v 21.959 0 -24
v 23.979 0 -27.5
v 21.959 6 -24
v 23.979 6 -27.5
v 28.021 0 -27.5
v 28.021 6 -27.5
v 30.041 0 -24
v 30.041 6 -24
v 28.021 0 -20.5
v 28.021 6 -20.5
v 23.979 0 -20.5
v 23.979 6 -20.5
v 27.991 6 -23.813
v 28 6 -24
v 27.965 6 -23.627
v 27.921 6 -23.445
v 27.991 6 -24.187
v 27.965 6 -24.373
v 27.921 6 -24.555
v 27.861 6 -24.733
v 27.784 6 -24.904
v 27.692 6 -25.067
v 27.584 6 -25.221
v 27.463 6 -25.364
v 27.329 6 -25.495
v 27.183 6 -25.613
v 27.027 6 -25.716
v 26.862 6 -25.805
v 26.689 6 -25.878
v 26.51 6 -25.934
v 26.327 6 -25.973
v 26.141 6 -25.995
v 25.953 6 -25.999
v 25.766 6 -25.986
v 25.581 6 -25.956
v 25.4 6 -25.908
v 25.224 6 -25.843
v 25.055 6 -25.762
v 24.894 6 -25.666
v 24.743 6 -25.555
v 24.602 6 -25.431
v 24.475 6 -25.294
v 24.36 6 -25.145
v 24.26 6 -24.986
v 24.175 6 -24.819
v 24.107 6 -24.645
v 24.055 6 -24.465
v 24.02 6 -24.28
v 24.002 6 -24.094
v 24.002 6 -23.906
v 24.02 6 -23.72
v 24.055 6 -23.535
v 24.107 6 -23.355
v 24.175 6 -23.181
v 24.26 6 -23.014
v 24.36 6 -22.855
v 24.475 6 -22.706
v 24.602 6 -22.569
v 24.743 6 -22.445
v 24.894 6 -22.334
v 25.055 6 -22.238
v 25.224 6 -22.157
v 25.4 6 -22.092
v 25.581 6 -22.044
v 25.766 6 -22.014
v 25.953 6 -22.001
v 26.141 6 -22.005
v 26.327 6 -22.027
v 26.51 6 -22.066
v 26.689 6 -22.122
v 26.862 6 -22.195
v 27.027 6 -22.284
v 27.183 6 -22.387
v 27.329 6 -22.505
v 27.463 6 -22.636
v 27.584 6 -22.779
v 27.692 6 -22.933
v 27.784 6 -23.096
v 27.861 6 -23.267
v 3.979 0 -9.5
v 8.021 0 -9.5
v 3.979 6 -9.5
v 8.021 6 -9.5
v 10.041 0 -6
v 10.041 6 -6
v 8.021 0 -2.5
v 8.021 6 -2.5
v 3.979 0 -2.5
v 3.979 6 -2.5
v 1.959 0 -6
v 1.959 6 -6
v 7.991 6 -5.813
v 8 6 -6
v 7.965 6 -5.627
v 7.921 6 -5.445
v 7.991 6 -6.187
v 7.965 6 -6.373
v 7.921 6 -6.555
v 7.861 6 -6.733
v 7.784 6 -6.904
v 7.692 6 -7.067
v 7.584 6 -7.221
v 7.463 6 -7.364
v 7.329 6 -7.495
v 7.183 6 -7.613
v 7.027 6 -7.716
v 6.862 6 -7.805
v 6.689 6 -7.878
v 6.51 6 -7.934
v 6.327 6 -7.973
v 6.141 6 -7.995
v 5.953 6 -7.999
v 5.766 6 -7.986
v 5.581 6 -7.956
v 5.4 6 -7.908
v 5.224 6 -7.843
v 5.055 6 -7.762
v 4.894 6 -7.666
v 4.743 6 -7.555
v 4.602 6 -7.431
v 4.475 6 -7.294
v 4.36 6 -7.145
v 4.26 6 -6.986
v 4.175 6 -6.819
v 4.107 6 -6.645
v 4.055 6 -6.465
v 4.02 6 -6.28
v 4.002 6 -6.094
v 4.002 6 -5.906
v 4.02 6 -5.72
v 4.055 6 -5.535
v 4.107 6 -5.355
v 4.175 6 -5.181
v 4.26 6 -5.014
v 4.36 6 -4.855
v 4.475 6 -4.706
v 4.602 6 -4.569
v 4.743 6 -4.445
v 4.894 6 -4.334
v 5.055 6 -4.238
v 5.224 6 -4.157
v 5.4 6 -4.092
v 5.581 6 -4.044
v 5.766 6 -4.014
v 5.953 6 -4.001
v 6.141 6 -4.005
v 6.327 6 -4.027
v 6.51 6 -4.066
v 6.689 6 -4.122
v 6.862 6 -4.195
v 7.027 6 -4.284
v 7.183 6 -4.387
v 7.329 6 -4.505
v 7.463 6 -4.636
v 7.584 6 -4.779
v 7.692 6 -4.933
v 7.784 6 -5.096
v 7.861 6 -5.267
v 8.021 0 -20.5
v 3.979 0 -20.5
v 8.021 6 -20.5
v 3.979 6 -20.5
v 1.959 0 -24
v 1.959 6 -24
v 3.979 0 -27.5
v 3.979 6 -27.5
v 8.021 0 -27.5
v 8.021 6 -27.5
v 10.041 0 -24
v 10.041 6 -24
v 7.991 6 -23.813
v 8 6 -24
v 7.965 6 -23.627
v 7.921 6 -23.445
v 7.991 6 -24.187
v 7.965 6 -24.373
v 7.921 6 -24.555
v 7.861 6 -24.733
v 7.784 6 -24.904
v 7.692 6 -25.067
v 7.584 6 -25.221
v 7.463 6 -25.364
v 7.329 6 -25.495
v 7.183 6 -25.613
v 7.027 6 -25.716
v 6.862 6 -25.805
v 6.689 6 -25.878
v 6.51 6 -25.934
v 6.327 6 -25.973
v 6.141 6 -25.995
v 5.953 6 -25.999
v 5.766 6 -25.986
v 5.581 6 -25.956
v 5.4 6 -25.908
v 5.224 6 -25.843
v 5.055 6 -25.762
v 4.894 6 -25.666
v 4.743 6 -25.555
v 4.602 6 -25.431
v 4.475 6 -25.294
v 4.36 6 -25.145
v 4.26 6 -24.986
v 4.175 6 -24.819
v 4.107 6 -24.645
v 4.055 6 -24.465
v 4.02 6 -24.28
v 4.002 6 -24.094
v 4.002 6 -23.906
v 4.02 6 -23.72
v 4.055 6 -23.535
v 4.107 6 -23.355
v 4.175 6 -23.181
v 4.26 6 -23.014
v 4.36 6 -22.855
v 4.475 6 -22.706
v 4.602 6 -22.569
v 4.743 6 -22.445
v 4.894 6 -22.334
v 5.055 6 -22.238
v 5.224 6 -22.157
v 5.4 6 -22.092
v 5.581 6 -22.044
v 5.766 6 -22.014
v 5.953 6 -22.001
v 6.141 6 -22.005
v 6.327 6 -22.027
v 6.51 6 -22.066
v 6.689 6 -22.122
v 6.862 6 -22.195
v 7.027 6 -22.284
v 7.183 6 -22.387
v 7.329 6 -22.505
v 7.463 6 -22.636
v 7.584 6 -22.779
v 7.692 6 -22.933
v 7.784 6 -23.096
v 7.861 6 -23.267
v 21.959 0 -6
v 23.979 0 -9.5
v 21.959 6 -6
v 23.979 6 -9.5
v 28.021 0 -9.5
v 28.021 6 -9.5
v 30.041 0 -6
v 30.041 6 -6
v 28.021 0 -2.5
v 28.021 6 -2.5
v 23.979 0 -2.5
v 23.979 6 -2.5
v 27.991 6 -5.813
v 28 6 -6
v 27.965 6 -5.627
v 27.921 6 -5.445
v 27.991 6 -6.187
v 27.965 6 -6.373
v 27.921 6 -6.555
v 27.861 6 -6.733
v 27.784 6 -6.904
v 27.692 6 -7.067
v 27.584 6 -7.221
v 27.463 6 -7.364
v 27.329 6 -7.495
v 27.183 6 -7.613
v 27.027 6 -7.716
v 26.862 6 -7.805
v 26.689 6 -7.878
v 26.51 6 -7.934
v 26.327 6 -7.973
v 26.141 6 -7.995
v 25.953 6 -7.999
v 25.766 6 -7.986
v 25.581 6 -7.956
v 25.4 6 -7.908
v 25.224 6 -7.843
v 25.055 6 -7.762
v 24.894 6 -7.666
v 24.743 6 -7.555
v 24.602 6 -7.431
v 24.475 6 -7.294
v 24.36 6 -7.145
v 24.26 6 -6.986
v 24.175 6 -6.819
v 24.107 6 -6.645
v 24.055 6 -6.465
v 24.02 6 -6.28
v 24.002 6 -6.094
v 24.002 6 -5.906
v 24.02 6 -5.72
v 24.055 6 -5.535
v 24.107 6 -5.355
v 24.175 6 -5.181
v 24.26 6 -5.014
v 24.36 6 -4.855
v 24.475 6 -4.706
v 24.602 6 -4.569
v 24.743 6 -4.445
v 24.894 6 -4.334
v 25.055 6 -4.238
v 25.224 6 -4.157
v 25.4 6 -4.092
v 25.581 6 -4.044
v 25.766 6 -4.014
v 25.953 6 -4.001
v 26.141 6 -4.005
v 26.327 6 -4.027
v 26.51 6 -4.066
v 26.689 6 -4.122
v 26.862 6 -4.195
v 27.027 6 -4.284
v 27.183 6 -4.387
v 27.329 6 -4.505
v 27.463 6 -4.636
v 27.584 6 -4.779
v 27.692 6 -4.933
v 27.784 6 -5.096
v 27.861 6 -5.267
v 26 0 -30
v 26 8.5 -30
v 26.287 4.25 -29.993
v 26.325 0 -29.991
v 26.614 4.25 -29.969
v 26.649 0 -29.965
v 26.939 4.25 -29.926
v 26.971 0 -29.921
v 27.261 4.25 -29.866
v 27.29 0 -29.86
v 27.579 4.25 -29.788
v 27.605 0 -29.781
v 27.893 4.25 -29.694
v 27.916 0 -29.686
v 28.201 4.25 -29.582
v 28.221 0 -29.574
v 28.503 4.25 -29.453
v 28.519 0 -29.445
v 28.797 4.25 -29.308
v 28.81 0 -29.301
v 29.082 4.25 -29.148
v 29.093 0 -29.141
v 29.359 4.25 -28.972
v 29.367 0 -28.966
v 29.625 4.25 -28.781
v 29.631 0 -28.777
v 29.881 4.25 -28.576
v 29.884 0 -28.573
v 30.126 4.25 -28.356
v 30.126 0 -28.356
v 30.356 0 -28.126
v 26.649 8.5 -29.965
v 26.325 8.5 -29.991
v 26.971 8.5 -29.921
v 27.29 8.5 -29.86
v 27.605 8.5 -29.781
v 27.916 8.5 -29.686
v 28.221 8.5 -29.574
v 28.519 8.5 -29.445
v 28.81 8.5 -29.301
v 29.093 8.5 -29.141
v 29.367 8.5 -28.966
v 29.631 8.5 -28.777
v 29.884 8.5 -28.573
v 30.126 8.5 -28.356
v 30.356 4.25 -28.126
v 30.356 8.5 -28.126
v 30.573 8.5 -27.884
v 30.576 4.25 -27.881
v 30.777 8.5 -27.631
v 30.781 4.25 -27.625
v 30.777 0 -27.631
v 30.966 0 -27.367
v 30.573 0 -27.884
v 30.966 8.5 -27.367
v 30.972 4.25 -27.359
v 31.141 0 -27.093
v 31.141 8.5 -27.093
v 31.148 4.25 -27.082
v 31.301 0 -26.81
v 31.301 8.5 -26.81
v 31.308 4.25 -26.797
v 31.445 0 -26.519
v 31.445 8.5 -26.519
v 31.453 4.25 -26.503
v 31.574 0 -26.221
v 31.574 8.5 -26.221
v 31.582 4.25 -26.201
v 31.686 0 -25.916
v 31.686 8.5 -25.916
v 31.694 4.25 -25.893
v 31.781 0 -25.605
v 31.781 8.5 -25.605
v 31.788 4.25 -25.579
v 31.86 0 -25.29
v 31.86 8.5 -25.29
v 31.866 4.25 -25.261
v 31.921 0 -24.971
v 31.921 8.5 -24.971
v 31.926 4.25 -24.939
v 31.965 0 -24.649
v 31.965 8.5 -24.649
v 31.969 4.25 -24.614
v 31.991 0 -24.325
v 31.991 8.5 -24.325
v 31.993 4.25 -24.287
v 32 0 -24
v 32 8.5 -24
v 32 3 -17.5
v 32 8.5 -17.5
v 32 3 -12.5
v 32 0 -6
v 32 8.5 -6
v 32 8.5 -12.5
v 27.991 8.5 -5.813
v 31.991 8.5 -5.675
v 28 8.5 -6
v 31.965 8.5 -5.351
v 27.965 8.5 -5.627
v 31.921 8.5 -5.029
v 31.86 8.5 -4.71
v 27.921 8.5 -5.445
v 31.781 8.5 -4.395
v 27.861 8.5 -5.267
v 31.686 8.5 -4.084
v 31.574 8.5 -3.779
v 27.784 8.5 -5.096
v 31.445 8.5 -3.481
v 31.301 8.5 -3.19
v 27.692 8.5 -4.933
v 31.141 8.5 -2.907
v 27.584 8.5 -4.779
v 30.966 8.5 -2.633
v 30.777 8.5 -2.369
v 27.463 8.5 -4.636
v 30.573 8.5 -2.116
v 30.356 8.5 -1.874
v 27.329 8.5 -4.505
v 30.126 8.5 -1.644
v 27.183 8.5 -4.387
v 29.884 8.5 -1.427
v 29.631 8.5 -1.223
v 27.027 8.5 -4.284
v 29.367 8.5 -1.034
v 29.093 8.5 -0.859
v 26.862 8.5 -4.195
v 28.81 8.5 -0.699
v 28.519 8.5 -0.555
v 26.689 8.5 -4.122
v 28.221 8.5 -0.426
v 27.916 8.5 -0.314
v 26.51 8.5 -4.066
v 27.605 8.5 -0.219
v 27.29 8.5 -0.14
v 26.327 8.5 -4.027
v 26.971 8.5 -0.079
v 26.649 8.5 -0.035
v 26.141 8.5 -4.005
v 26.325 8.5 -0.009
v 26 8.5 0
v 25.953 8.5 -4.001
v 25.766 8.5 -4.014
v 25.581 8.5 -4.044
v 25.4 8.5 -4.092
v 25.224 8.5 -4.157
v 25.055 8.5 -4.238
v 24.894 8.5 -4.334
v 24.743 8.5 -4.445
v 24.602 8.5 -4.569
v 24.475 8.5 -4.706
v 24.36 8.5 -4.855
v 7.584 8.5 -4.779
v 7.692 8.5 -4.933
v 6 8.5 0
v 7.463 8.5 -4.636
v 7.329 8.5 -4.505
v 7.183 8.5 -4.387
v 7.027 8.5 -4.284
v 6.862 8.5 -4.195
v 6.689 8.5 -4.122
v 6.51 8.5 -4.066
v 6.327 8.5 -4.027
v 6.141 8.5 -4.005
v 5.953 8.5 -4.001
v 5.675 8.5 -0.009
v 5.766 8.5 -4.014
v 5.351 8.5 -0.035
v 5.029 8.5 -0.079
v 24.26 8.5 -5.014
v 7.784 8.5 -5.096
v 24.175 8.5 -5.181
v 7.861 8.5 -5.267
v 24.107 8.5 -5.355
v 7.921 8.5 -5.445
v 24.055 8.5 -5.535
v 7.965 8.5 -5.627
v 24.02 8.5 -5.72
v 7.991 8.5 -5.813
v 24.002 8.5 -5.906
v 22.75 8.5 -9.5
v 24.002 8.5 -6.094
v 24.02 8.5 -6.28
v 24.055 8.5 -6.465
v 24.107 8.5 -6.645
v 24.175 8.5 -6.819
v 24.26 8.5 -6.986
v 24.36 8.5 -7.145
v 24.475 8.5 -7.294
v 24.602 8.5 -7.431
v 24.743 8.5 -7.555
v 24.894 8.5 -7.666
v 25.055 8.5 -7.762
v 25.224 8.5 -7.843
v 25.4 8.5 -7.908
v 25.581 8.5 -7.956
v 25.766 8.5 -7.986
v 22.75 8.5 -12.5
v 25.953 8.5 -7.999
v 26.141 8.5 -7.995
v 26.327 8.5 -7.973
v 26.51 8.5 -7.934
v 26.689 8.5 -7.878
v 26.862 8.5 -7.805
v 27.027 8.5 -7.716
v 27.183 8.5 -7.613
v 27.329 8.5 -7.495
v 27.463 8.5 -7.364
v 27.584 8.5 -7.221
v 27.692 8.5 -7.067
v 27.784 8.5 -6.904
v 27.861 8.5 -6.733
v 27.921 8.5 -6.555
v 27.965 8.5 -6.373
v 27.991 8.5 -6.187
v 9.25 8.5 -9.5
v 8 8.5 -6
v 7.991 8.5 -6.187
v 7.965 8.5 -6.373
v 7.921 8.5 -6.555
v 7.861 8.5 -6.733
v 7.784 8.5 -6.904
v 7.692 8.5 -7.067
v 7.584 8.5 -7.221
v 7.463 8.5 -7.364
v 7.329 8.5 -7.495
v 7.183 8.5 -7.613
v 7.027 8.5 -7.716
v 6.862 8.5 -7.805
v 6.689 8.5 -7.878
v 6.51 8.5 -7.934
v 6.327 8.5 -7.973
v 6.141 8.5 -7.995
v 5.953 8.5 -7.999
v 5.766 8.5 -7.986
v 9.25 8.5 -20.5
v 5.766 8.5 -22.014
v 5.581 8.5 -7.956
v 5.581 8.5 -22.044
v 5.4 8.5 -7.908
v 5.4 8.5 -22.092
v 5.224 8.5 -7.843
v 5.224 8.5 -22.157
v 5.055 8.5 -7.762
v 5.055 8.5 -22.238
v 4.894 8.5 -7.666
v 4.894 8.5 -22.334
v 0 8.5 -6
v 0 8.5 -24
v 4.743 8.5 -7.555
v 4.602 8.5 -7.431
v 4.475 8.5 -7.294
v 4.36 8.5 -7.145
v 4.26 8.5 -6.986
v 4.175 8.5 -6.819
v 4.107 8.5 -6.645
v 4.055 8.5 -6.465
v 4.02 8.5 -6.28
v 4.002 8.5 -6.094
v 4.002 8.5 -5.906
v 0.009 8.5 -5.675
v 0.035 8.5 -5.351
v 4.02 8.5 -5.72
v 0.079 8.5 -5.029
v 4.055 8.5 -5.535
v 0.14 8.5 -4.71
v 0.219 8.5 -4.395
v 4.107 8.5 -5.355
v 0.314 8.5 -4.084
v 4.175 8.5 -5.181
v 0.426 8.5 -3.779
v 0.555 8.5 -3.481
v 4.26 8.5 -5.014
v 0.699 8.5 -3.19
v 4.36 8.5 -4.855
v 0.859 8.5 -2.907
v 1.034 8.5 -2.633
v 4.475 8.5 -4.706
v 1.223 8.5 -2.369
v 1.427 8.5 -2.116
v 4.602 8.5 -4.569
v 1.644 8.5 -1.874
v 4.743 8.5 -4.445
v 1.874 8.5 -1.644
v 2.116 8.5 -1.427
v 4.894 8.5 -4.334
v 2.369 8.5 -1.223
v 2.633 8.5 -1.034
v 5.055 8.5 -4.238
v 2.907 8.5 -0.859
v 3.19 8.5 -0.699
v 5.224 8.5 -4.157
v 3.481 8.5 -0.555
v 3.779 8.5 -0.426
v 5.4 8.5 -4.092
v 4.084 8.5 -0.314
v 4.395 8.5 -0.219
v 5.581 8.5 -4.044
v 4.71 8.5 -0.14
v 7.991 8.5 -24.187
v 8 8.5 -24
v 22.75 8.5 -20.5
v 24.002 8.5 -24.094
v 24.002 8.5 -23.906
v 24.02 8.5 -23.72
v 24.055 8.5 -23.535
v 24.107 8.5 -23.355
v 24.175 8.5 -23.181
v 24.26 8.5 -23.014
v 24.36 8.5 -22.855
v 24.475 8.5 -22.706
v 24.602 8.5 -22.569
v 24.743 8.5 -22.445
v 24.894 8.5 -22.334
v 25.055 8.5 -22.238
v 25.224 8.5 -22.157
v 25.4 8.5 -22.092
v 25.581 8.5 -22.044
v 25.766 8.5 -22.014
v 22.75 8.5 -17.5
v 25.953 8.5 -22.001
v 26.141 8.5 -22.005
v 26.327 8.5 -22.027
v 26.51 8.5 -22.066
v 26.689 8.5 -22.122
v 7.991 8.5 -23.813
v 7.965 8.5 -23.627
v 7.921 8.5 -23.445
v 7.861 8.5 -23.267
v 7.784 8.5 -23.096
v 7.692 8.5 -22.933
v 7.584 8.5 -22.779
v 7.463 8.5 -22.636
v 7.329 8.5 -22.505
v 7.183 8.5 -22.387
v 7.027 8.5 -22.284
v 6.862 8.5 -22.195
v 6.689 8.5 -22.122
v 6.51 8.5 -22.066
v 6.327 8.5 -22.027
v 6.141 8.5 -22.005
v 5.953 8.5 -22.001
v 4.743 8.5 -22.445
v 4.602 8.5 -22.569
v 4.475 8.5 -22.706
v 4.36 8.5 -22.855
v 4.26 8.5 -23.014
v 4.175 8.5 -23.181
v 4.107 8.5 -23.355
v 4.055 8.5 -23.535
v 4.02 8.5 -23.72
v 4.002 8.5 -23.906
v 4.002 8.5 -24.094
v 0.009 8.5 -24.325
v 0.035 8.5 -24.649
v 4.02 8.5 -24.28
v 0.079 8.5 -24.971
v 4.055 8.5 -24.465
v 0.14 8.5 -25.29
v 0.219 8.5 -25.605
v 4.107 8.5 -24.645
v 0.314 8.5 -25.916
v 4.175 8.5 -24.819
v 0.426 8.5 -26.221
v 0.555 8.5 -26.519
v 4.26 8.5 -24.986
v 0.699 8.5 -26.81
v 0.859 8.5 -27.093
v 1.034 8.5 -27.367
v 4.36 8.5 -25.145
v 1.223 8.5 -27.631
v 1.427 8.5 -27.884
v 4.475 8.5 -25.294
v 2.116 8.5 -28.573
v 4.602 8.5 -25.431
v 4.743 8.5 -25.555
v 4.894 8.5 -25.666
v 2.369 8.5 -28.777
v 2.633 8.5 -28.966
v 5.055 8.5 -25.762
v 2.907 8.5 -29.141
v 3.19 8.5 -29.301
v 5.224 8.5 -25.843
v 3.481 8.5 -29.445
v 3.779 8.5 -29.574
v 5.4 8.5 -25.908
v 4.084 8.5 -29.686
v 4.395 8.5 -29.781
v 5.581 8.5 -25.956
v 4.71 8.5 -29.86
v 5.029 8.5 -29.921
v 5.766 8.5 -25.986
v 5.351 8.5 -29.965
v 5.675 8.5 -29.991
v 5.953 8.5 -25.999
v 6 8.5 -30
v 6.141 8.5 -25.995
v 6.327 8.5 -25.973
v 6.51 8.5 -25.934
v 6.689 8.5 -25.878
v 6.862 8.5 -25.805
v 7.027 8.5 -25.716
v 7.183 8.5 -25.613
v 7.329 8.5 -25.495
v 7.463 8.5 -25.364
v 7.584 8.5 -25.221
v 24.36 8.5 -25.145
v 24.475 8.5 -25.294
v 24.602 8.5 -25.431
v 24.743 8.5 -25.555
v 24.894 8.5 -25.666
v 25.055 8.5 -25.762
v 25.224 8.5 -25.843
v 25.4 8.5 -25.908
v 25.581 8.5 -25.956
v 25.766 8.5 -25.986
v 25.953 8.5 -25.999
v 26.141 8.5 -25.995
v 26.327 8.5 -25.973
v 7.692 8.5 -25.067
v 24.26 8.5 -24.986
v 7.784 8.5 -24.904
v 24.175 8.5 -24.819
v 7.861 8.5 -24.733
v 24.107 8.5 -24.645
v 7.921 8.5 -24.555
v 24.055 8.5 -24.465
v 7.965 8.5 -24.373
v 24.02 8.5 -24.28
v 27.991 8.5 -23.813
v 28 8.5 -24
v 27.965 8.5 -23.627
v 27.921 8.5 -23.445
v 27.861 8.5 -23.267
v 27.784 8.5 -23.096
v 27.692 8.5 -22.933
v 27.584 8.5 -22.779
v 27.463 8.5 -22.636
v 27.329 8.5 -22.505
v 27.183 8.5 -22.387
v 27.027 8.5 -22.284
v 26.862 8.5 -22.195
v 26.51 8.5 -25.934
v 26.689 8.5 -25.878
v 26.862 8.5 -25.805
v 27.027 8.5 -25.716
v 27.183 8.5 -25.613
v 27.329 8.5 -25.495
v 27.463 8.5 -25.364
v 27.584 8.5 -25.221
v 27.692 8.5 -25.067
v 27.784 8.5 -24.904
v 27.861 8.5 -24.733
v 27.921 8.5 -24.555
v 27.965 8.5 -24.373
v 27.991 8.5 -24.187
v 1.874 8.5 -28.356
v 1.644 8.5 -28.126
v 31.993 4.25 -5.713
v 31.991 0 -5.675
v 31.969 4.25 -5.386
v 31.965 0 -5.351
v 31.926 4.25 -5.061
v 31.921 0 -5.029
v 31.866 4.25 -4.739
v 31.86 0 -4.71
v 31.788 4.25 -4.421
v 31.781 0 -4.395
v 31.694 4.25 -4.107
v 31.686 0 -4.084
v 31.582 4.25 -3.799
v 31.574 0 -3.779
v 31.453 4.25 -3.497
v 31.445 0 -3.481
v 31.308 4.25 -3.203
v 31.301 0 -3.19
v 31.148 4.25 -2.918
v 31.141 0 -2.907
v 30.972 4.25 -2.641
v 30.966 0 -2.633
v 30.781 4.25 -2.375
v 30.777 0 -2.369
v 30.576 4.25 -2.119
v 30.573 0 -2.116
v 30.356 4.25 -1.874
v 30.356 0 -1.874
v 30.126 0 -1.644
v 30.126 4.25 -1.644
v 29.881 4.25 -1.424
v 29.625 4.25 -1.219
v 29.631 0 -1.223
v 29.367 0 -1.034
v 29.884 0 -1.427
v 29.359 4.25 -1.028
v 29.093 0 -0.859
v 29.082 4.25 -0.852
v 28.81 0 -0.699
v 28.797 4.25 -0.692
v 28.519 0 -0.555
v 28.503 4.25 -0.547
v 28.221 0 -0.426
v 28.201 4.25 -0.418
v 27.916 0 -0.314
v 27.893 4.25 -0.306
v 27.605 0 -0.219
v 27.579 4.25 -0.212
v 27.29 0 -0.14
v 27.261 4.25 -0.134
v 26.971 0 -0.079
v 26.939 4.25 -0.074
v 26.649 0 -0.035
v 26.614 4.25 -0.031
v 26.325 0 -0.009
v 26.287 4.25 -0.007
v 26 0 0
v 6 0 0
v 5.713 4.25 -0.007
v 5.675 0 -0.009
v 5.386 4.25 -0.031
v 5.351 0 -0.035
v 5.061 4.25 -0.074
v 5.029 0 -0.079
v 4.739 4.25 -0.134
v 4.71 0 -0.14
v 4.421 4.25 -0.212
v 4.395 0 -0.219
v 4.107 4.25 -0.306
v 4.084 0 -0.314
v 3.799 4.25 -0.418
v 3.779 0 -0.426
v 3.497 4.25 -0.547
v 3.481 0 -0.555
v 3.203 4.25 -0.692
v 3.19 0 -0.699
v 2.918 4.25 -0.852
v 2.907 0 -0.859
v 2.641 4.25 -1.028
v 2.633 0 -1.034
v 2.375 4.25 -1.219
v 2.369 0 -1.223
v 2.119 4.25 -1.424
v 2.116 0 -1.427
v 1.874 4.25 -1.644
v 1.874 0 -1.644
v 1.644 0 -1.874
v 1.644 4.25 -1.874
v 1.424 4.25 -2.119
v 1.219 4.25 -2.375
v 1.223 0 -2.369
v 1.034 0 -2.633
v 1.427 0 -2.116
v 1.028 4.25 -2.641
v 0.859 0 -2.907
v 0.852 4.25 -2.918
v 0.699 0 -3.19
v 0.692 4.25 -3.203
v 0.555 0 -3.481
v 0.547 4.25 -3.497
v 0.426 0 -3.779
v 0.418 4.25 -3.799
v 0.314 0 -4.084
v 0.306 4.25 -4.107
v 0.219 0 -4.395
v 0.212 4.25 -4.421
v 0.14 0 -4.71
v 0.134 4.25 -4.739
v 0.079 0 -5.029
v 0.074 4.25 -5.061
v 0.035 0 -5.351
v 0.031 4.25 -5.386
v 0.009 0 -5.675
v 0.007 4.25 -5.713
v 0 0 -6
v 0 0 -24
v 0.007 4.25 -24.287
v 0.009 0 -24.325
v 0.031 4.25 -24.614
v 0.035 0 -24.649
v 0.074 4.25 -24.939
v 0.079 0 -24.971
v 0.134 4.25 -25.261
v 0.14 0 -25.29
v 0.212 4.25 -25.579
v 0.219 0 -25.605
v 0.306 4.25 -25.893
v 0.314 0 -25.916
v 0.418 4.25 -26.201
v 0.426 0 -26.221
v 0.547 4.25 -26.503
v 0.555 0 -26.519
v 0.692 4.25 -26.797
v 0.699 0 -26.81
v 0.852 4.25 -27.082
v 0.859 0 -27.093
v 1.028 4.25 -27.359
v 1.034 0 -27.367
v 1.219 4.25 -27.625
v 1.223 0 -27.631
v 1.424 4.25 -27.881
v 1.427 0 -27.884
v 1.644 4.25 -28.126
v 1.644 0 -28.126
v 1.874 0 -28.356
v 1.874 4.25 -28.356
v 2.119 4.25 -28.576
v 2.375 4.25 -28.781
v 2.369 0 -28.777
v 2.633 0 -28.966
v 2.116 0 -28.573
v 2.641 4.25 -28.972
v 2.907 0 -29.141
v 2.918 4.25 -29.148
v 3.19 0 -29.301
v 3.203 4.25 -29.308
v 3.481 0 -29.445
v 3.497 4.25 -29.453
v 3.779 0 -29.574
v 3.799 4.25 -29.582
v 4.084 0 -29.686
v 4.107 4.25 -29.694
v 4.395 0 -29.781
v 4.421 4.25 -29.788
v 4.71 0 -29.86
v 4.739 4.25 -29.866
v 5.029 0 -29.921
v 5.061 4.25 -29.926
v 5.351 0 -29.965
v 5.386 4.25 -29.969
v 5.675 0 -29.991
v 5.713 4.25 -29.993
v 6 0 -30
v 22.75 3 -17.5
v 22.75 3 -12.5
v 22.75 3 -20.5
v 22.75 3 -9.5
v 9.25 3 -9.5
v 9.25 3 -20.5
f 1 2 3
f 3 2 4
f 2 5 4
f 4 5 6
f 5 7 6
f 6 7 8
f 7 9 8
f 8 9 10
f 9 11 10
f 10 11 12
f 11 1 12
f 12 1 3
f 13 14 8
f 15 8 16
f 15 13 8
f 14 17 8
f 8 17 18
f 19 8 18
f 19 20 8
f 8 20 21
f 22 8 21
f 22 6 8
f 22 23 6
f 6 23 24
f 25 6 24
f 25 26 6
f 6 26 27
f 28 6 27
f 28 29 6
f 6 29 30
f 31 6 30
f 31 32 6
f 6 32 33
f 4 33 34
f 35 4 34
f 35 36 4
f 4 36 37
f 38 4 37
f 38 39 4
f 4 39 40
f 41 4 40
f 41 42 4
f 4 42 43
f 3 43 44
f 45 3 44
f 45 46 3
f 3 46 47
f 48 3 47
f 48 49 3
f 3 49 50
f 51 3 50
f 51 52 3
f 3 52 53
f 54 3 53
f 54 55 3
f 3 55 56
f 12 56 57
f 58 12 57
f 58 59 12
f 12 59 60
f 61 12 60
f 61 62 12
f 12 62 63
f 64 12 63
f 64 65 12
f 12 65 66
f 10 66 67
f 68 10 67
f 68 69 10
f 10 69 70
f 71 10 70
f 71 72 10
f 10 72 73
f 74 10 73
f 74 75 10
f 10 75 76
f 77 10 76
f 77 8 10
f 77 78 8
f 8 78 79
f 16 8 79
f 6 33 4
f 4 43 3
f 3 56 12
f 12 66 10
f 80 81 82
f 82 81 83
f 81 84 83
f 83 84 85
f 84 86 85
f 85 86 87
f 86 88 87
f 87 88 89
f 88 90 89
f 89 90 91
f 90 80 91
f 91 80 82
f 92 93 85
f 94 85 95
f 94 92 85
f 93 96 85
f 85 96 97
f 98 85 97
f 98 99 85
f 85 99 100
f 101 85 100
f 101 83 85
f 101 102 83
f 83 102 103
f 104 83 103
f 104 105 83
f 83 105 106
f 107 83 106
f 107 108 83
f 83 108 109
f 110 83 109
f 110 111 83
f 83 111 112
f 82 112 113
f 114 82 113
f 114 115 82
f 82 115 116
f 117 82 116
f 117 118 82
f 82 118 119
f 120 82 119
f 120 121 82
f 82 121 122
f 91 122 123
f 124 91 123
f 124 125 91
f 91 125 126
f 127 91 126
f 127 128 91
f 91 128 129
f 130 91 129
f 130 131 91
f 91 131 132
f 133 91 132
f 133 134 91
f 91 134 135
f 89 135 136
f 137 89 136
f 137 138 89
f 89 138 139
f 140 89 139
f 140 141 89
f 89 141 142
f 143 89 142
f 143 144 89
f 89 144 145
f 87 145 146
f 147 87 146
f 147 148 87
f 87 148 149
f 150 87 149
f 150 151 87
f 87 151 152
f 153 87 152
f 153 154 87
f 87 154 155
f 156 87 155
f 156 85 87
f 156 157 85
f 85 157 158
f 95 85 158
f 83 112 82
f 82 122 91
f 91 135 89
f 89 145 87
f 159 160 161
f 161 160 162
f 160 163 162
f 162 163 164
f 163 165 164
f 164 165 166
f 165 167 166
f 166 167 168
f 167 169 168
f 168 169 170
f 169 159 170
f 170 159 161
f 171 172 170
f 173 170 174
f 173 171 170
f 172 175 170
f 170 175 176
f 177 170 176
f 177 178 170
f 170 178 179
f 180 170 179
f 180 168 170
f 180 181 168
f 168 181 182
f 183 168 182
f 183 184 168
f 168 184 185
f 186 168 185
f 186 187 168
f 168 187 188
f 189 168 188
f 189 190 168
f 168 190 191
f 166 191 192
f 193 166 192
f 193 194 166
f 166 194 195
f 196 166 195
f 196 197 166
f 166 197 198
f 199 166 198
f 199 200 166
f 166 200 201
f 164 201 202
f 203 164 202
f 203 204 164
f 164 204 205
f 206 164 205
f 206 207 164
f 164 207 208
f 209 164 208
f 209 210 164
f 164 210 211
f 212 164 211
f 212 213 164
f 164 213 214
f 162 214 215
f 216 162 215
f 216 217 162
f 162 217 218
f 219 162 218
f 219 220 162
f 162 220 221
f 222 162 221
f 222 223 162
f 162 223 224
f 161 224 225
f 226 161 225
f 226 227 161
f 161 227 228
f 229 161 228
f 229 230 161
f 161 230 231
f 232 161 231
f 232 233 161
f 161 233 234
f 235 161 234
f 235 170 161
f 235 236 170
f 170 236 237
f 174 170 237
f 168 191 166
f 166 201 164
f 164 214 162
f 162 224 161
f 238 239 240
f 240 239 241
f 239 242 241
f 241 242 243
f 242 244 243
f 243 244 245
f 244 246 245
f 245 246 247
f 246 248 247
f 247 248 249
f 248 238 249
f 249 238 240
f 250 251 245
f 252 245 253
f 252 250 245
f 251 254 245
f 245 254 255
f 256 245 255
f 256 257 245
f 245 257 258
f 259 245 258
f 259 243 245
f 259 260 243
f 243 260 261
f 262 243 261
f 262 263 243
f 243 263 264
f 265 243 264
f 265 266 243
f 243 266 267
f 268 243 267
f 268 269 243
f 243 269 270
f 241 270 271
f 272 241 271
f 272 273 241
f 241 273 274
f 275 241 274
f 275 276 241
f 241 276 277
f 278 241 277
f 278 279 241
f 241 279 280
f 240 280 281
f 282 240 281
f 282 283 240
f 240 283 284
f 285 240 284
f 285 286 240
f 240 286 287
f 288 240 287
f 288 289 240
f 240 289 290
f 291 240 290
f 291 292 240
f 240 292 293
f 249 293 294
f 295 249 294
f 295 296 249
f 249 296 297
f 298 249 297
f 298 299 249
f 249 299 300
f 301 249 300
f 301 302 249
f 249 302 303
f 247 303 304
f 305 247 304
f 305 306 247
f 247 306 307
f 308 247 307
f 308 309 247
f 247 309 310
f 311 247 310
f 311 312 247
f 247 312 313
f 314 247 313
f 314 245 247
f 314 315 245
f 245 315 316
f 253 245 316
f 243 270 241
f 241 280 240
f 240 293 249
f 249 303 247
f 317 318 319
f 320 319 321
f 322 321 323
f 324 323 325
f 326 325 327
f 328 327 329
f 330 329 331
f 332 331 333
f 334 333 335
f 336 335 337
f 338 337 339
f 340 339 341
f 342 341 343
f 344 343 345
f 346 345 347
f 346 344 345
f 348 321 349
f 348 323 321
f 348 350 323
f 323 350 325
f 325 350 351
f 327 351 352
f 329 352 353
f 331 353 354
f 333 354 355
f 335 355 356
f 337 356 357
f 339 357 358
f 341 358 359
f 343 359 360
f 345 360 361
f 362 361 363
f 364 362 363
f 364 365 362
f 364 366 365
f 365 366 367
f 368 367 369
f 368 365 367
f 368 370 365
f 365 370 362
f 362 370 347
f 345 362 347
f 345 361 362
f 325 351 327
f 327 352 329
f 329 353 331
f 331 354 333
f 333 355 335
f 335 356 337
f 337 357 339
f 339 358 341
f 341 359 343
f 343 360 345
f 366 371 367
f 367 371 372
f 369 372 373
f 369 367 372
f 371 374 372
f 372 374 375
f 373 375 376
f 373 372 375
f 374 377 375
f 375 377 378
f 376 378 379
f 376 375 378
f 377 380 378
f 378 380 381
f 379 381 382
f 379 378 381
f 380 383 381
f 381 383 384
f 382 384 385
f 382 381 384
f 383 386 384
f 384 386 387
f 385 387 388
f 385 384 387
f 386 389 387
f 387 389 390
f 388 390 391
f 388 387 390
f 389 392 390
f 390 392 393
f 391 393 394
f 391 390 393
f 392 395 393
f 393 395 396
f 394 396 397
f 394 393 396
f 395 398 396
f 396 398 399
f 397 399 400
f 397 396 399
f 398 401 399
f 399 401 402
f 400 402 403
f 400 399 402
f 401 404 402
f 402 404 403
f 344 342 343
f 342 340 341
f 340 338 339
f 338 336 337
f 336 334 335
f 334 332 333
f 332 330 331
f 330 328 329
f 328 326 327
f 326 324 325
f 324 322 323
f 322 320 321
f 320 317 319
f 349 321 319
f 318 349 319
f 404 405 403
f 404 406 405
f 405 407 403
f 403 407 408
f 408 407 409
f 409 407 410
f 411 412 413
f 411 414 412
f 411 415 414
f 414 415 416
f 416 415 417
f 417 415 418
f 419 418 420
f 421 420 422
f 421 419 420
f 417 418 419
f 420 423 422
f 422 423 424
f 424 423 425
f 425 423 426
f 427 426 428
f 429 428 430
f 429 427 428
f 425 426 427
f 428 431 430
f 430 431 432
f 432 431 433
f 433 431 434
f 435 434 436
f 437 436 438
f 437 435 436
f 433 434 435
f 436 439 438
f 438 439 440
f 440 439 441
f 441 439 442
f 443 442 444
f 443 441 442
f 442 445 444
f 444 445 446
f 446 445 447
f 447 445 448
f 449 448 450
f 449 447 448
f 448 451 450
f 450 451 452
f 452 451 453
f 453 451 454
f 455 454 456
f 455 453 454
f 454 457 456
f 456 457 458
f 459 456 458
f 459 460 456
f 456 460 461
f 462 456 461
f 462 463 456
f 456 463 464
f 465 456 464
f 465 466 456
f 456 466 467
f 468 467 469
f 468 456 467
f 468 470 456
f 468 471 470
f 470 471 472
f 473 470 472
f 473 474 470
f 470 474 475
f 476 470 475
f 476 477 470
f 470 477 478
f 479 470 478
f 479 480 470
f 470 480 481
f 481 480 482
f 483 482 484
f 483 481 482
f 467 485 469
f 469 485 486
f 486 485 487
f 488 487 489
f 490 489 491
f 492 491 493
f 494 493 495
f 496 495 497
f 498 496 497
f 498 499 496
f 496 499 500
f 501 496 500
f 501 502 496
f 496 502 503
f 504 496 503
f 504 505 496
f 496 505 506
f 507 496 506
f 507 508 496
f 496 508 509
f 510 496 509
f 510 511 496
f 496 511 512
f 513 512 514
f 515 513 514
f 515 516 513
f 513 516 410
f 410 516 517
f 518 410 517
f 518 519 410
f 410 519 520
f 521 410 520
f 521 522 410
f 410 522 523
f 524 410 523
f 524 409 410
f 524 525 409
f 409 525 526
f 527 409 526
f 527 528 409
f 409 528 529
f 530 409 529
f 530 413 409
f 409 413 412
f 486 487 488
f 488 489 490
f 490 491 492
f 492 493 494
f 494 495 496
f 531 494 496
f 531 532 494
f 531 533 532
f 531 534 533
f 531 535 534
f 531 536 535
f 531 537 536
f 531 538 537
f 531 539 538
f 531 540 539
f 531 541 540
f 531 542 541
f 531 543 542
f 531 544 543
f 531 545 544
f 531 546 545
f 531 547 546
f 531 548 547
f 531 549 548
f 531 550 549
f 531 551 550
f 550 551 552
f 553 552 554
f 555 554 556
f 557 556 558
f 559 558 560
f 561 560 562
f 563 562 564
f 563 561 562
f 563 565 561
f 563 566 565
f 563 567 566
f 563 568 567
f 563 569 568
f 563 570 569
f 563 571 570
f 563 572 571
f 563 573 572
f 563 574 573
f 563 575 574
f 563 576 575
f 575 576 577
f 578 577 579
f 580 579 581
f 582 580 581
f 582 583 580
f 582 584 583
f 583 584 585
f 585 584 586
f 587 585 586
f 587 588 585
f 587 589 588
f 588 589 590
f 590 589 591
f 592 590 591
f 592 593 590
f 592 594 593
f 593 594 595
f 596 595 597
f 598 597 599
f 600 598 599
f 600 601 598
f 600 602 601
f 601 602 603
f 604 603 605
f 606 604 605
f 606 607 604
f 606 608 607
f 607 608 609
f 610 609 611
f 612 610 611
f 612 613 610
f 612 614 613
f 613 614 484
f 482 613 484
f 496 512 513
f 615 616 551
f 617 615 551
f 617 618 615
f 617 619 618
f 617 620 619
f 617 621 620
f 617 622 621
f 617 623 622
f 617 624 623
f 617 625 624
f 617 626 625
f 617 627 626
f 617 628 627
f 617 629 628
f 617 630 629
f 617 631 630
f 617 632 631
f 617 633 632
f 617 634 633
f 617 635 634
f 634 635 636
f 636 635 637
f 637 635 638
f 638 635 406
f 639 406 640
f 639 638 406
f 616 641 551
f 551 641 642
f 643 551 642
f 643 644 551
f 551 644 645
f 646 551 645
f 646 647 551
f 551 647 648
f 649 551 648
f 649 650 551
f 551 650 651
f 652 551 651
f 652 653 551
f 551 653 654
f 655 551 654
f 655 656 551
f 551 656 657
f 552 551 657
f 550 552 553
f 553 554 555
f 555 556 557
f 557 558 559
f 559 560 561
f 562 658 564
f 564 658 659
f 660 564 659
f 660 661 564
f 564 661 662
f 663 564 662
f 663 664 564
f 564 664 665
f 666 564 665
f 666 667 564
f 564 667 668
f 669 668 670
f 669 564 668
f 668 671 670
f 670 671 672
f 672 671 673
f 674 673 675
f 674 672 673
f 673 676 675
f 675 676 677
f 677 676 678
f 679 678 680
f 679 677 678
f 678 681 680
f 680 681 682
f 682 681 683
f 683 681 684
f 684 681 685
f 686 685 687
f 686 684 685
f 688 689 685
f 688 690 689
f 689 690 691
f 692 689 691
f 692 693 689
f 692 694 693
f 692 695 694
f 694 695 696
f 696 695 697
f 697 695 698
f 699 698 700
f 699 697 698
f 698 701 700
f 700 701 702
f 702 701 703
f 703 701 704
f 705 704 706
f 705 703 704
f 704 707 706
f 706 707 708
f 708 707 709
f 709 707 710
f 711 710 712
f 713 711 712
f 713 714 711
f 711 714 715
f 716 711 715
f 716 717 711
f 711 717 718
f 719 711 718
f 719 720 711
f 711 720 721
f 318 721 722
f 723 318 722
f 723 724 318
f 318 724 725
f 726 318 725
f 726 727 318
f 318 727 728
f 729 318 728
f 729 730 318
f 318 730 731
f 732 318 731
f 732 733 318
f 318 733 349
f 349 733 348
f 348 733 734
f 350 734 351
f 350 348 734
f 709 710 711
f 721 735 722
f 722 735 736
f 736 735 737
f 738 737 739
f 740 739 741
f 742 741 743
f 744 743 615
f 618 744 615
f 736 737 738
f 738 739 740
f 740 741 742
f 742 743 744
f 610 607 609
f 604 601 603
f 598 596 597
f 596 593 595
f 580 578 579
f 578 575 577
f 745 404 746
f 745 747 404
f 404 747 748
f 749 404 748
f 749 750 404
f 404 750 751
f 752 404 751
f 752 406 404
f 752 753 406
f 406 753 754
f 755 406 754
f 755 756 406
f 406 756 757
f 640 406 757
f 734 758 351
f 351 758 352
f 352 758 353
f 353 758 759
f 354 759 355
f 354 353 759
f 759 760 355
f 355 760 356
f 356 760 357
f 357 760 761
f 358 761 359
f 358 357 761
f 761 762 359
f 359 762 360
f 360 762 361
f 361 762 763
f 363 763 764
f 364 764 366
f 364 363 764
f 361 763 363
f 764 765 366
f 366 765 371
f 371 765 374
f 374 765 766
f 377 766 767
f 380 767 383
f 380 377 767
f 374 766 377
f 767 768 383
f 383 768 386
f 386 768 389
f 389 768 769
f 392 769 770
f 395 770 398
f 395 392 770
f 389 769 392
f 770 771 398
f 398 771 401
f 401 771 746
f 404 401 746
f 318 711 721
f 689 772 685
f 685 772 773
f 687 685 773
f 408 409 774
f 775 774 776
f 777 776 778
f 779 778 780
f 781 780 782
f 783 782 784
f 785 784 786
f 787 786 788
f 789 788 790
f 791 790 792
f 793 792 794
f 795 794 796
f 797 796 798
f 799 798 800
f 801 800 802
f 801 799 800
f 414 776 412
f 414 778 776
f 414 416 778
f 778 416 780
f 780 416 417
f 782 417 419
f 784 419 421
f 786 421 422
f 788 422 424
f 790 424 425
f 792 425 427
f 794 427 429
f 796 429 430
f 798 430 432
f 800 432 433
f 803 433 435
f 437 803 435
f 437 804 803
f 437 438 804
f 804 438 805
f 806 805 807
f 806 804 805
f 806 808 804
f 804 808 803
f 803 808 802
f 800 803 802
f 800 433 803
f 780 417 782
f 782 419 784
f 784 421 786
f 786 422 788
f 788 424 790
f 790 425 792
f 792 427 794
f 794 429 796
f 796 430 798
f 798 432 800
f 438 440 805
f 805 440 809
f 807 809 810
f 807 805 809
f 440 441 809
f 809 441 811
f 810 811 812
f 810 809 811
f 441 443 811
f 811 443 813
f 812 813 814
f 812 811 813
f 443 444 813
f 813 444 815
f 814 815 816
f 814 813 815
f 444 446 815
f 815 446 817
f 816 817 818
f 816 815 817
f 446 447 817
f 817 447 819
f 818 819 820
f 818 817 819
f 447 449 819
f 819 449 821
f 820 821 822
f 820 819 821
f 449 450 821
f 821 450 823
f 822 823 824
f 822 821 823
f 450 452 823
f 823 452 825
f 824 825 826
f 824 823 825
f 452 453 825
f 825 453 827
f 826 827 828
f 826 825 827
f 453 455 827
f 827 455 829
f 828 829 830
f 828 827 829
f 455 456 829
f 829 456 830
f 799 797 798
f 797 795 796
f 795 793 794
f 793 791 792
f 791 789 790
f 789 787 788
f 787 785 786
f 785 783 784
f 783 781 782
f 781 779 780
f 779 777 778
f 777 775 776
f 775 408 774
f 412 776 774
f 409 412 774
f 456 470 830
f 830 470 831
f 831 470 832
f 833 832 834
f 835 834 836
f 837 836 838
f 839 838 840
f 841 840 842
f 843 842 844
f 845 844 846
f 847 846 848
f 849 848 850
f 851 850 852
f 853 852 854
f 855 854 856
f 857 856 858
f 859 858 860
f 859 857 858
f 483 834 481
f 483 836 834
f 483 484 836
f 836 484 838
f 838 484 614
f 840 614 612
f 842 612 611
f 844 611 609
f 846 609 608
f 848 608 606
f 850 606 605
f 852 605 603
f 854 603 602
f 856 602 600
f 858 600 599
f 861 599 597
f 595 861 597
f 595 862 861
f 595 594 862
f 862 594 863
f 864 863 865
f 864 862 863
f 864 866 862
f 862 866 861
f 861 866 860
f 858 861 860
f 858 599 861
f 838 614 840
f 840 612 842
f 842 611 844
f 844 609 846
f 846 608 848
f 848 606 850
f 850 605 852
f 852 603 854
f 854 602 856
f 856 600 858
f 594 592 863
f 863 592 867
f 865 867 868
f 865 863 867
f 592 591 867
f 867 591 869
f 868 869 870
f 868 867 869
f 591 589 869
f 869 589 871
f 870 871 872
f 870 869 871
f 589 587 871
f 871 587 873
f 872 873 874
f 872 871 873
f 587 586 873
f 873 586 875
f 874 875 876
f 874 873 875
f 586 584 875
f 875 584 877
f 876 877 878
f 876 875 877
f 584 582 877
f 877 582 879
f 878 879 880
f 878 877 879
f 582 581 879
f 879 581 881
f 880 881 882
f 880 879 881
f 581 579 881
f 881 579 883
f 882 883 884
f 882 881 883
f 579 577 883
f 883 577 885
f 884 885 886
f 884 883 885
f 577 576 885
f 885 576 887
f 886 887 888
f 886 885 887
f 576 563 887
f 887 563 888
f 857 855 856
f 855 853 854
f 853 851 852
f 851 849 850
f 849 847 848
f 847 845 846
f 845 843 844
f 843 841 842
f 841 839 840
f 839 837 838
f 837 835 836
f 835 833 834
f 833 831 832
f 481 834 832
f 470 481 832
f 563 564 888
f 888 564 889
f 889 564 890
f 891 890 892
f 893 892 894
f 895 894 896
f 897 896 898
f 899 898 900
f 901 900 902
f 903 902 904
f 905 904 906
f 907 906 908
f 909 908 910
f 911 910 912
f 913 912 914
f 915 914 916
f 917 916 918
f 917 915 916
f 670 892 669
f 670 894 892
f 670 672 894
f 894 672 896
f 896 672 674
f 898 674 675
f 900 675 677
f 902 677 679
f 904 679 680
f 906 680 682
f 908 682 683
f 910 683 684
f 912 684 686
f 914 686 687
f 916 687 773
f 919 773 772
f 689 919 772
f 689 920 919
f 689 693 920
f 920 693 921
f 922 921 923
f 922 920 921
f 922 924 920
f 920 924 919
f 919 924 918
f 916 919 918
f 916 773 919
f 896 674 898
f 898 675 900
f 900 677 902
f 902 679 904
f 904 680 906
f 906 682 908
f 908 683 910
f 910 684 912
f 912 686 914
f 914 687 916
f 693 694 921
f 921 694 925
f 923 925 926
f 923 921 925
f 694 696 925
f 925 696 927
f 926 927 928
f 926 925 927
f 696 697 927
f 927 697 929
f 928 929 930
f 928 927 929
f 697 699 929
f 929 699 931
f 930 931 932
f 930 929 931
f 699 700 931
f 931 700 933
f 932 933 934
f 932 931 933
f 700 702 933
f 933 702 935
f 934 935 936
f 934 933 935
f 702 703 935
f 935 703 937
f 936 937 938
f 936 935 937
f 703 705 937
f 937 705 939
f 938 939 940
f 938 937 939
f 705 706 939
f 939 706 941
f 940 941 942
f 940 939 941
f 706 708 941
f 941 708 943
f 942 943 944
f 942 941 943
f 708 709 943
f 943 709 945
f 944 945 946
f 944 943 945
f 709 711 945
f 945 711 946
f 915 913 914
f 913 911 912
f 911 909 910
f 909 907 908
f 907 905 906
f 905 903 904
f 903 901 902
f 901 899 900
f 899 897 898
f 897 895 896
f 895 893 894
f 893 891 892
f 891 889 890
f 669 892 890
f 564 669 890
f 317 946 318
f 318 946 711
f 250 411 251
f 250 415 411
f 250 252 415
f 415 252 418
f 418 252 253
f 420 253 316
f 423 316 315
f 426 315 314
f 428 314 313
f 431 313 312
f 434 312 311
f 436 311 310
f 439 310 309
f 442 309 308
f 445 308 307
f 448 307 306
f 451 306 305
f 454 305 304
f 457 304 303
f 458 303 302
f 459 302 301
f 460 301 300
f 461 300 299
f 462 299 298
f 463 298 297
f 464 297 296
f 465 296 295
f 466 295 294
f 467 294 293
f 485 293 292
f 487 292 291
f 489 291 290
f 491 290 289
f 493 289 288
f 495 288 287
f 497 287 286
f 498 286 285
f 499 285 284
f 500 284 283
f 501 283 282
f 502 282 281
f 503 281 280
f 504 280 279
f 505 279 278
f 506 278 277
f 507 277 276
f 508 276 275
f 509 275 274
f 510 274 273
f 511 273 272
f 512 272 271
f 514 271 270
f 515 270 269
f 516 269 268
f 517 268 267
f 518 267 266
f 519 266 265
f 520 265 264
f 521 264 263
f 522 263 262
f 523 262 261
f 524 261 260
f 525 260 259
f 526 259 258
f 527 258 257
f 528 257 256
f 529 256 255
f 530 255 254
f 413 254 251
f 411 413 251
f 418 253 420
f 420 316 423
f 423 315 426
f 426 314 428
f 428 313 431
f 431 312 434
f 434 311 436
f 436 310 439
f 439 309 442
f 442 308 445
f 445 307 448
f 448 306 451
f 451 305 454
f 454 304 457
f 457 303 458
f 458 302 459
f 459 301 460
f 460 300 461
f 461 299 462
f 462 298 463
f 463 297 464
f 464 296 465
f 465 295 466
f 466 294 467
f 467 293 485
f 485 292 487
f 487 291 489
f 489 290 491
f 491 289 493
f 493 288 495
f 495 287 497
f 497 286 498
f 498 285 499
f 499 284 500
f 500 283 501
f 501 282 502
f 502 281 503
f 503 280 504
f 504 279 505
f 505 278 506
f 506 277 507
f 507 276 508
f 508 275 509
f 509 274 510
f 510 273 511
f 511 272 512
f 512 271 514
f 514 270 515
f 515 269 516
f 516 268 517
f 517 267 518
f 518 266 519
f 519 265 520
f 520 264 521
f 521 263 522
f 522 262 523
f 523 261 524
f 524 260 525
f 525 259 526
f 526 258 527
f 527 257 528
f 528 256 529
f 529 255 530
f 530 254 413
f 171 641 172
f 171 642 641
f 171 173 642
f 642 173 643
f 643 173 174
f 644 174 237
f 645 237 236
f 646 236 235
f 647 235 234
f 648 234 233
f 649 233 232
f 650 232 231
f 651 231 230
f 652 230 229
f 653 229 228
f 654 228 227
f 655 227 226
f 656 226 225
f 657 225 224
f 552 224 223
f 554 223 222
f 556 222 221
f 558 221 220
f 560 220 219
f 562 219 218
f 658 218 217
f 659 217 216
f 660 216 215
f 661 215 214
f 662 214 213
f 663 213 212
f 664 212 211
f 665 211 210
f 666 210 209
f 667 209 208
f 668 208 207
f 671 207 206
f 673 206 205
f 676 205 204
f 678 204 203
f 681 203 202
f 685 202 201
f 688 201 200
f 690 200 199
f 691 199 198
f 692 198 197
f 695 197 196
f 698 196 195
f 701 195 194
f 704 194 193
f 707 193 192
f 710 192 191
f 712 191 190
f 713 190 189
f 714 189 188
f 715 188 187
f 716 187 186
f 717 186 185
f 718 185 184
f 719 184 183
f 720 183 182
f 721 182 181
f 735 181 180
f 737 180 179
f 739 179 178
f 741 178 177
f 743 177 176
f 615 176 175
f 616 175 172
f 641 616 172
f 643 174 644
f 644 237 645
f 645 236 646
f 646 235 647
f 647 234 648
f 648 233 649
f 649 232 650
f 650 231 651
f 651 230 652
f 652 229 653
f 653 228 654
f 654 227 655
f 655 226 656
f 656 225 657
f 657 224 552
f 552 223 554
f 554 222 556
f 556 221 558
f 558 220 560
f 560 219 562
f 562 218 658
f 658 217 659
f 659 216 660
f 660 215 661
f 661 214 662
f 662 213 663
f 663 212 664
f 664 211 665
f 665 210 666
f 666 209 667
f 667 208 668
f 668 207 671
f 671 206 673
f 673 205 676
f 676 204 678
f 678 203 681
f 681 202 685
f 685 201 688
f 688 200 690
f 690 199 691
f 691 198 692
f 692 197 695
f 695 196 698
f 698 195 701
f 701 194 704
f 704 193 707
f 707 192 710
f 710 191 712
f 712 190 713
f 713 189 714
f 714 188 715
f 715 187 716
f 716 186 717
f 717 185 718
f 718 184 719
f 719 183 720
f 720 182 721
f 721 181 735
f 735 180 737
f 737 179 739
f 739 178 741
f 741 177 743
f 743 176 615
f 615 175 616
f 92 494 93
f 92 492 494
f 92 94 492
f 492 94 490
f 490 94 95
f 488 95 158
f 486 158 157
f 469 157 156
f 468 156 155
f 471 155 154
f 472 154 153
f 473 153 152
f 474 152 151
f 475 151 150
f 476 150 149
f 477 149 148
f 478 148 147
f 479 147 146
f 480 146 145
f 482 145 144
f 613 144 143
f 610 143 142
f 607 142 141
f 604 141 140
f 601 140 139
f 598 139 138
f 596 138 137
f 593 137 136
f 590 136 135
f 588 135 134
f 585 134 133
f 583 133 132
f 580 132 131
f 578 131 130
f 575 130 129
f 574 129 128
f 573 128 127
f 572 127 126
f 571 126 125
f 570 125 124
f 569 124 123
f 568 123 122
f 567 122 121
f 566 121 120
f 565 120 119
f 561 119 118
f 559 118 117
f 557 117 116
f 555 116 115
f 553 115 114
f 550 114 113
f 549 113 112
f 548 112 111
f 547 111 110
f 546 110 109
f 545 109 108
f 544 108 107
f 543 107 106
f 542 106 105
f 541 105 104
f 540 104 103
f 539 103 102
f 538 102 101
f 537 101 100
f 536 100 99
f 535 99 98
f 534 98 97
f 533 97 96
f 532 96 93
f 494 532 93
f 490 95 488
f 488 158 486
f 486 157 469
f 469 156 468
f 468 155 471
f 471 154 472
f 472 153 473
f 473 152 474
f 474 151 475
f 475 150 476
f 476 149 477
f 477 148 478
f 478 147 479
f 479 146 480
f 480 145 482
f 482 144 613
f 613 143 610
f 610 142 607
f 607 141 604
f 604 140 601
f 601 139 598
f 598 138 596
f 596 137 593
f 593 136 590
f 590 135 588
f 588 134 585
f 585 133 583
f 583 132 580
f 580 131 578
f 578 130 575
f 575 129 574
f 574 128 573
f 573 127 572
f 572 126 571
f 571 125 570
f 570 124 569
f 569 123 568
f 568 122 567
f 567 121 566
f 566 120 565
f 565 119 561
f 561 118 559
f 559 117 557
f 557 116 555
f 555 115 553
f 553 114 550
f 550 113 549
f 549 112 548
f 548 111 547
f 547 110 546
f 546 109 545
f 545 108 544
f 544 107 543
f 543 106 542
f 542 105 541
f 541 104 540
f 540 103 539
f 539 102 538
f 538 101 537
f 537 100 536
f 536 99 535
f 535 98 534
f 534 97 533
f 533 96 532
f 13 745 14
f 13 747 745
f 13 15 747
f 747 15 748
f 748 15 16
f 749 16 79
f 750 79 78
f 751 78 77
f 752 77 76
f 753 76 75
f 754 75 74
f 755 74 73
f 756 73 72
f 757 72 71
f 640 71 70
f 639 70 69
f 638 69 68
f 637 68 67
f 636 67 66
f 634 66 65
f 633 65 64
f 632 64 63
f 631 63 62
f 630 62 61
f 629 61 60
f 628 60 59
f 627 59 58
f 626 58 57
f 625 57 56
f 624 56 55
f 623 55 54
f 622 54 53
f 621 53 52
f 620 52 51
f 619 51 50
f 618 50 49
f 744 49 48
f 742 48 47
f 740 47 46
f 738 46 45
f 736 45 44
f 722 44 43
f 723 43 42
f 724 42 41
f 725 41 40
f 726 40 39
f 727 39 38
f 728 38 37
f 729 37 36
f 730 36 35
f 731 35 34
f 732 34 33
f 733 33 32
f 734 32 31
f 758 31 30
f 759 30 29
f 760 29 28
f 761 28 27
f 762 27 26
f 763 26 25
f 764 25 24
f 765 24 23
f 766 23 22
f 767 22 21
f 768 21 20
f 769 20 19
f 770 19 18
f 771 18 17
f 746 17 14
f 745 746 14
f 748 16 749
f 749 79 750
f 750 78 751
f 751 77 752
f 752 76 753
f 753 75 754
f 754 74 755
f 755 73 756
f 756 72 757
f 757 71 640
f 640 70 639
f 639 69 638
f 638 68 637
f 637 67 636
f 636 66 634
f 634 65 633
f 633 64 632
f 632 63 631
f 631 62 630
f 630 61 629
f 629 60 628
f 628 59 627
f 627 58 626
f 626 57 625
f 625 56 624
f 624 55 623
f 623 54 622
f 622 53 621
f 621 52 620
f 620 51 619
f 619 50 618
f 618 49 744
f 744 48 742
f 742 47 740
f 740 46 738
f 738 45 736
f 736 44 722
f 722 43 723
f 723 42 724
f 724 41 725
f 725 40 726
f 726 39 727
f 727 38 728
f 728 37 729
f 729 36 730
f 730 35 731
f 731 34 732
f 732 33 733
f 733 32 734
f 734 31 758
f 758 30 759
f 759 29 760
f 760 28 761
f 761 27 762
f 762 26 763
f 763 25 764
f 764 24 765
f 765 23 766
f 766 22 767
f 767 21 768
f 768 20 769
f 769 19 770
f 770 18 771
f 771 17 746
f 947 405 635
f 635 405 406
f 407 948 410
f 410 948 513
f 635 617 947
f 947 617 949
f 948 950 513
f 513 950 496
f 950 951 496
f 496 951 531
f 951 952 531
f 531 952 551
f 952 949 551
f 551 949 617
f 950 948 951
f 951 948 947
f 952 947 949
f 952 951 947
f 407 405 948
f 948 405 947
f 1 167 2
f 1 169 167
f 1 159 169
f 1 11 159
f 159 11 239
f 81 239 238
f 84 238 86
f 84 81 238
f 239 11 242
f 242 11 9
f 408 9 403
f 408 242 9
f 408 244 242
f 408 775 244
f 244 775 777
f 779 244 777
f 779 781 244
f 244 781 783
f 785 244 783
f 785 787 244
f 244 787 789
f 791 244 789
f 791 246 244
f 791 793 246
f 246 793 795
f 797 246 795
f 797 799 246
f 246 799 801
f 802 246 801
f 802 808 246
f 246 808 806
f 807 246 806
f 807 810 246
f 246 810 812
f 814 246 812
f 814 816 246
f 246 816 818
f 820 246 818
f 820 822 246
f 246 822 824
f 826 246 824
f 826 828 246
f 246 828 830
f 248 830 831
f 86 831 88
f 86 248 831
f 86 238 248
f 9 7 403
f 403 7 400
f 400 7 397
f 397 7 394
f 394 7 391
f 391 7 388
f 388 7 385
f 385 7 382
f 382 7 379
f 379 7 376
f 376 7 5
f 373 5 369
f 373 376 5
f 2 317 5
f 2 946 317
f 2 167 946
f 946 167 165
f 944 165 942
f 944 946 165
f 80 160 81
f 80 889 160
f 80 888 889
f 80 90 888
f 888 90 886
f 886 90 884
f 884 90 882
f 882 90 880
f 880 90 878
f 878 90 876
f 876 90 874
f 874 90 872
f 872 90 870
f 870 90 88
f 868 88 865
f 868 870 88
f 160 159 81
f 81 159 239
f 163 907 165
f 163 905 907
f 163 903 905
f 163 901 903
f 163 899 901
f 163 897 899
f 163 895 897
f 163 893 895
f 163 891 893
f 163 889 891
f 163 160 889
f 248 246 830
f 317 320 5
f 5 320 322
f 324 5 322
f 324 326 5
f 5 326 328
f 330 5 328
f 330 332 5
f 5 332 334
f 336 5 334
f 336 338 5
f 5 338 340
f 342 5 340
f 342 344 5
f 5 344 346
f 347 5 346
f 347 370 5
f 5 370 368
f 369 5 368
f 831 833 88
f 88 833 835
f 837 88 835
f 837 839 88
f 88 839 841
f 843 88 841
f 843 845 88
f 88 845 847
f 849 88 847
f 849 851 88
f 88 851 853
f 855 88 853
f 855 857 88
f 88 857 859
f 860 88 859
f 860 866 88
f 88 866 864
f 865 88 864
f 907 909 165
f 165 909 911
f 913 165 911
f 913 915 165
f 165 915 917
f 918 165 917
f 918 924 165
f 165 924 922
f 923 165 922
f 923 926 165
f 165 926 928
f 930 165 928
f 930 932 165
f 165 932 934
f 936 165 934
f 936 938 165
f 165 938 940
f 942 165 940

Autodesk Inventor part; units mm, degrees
ref_plane "YZ Plane" through (0, 0, 0) normal (1, 0, 0) x (0, 1, 0)
ref_plane "XZ Plane" through (0, 0, 0) normal (0, 1, 0) x (-1, 0, 0)
ref_plane "XY Plane" through (0, 0, 0) normal (0, 0, 1) x (1, 0, 0)
sketch "Sketch1" plane through (0, 0, 0) normal (0, 1, 0) x (-1, 0, 0)
  line L0 (0, 0) -> (-32, 0)
  line L1 (-32, 0) -> (-32, -30)
  line L2 (-32, -30) -> (0, -30)
  line L3 (0, -30) -> (0, 0)
  dimension "d0" = 30
  dimension "d1" = 32
extrude "Extrusion1" add sketch "Sketch1" along normal blind 3
sketch "Sketch2" plane through (0, 3, 0) normal (0, 1, 0) x (1, 0, 0)
  line L0 (0, 0) -> (32, 0) projected
  line L1 (32, 0) -> (32, 30) projected
  line L2 (32, 30) -> (0, 30) projected
  line L3 (0, 30) -> (0, 0) projected
  line L4 (9.25, 20.5) -> (22.75, 20.5)
  line L5 (22.75, 20.5) -> (22.75, 9.5)
  line L6 (22.75, 9.5) -> (9.25, 9.5)
  line L7 (9.25, 9.5) -> (9.25, 20.5)
  point P0 (9.25, 15)
  point P1 (0, 15)
  point P2 (16, 9.5)
  point P3 (16, 0)
  dimension "d4" = 11
  dimension "d5" = 13.5
extrude "Extrusion2" add sketch "Sketch2" along normal blind 5.5
sketch "Sketch3" plane through (0, 8.5, 0) normal (0, 1, 0) x (1, 0, 0)
  line L0 (22.75, 20.5) -> (22.75, 9.5) projected
  line L1 (32, 0) -> (32, 30) projected
  line L2 (22.75, 17.5) -> (32, 17.5)
  line L3 (32, 17.5) -> (32, 12.5)
  line L4 (32, 12.5) -> (22.75, 12.5)
  line L5 (22.75, 12.5) -> (22.75, 17.5)
  point P0 (22.75, 15)
  point P1 (22.75, 15)
  dimension "d8" = 5
extrude "Extrusion3" cut sketch "Sketch3" against normal up to surface (5.5 mm away)
sketch "Sketch4" plane through (0, 8.5, 0) normal (0, 1, 0) x (1, 0, 0)
  line L0 (32, 30) -> (0, 30) projected
  line L1 (0, 30) -> (0, 0) projected
  line L2 (6, 24) -> (26, 24) construction
  line L3 (26, 24) -> (26, 6) construction
  line L4 (26, 6) -> (6, 6) construction
  line L5 (6, 6) -> (6, 24) construction
  circle A0 centre (6, 24) radius 2
  circle A1 centre (6, 6) radius 2
  circle A2 centre (26, 6) radius 2
  circle A3 centre (26, 24) radius 2
  point P0 (6, 15)
  point P1 (0, 15)
  point P2 (16, 24)
  point P3 (16, 30)
  dimension "d11" = 4
  dimension "d18" = 18
  dimension "d19" = 20
extrude "Extrusion4" cut sketch "Sketch4" against normal through all
fillet "Fillet1" radius 6 4 edges at (0, 4.25, -30) (0, 4.25, 0) (32, 4.25, 0) (32, 4.25, -30)
sketch "Sketch5" plane through (0, 0, 0) normal (0, -1, 0) x (1, 0, 0)
  circle A0 centre (26, -6) radius 2 projected
  circle A1 centre (6, -24) radius 2 projected
  circle A2 centre (6, -6) radius 2 projected
  circle A3 centre (26, -24) radius 2 projected
  line L0 (3.9793, -9.5) -> (1.9585, -6)
  line L1 (1.9585, -6) -> (3.9793, -2.5)
  line L2 (3.9793, -2.5) -> (8.0207, -2.5)
  line L3 (8.0207, -2.5) -> (10.0415, -6)
  line L4 (10.0415, -6) -> (8.0207, -9.5)
  line L5 (8.0207, -9.5) -> (3.9793, -9.5)
  line L6 (8.0207, -20.5) -> (10.0415, -24)
  line L7 (10.0415, -24) -> (8.0207, -27.5)
  line L8 (8.0207, -27.5) -> (3.9793, -27.5)
  line L9 (3.9793, -27.5) -> (1.9585, -24)
  line L10 (1.9585, -24) -> (3.9793, -20.5)
  line L11 (3.9793, -20.5) -> (8.0207, -20.5)
  line L12 (21.9585, -24) -> (23.9793, -20.5)
  line L13 (23.9793, -20.5) -> (28.0207, -20.5)
  line L14 (28.0207, -20.5) -> (30.0415, -24)
  line L15 (30.0415, -24) -> (28.0207, -27.5)
  line L16 (28.0207, -27.5) -> (23.9793, -27.5)
  line L17 (23.9793, -27.5) -> (21.9585, -24)
  line L18 (21.9585, -6) -> (23.9793, -2.5)
  line L19 (23.9793, -2.5) -> (28.0207, -2.5)
  line L20 (28.0207, -2.5) -> (30.0415, -6)
  line L21 (30.0415, -6) -> (28.0207, -9.5)
  line L22 (28.0207, -9.5) -> (23.9793, -9.5)
  line L23 (23.9793, -9.5) -> (21.9585, -6)
  point P0 (0, 0)
  point P1 (6, -27.5)
  dimension "d21" = 7
extrude "Extrusion5" cut sketch "Sketch5" against normal blind 6
properties part number "bottom"
